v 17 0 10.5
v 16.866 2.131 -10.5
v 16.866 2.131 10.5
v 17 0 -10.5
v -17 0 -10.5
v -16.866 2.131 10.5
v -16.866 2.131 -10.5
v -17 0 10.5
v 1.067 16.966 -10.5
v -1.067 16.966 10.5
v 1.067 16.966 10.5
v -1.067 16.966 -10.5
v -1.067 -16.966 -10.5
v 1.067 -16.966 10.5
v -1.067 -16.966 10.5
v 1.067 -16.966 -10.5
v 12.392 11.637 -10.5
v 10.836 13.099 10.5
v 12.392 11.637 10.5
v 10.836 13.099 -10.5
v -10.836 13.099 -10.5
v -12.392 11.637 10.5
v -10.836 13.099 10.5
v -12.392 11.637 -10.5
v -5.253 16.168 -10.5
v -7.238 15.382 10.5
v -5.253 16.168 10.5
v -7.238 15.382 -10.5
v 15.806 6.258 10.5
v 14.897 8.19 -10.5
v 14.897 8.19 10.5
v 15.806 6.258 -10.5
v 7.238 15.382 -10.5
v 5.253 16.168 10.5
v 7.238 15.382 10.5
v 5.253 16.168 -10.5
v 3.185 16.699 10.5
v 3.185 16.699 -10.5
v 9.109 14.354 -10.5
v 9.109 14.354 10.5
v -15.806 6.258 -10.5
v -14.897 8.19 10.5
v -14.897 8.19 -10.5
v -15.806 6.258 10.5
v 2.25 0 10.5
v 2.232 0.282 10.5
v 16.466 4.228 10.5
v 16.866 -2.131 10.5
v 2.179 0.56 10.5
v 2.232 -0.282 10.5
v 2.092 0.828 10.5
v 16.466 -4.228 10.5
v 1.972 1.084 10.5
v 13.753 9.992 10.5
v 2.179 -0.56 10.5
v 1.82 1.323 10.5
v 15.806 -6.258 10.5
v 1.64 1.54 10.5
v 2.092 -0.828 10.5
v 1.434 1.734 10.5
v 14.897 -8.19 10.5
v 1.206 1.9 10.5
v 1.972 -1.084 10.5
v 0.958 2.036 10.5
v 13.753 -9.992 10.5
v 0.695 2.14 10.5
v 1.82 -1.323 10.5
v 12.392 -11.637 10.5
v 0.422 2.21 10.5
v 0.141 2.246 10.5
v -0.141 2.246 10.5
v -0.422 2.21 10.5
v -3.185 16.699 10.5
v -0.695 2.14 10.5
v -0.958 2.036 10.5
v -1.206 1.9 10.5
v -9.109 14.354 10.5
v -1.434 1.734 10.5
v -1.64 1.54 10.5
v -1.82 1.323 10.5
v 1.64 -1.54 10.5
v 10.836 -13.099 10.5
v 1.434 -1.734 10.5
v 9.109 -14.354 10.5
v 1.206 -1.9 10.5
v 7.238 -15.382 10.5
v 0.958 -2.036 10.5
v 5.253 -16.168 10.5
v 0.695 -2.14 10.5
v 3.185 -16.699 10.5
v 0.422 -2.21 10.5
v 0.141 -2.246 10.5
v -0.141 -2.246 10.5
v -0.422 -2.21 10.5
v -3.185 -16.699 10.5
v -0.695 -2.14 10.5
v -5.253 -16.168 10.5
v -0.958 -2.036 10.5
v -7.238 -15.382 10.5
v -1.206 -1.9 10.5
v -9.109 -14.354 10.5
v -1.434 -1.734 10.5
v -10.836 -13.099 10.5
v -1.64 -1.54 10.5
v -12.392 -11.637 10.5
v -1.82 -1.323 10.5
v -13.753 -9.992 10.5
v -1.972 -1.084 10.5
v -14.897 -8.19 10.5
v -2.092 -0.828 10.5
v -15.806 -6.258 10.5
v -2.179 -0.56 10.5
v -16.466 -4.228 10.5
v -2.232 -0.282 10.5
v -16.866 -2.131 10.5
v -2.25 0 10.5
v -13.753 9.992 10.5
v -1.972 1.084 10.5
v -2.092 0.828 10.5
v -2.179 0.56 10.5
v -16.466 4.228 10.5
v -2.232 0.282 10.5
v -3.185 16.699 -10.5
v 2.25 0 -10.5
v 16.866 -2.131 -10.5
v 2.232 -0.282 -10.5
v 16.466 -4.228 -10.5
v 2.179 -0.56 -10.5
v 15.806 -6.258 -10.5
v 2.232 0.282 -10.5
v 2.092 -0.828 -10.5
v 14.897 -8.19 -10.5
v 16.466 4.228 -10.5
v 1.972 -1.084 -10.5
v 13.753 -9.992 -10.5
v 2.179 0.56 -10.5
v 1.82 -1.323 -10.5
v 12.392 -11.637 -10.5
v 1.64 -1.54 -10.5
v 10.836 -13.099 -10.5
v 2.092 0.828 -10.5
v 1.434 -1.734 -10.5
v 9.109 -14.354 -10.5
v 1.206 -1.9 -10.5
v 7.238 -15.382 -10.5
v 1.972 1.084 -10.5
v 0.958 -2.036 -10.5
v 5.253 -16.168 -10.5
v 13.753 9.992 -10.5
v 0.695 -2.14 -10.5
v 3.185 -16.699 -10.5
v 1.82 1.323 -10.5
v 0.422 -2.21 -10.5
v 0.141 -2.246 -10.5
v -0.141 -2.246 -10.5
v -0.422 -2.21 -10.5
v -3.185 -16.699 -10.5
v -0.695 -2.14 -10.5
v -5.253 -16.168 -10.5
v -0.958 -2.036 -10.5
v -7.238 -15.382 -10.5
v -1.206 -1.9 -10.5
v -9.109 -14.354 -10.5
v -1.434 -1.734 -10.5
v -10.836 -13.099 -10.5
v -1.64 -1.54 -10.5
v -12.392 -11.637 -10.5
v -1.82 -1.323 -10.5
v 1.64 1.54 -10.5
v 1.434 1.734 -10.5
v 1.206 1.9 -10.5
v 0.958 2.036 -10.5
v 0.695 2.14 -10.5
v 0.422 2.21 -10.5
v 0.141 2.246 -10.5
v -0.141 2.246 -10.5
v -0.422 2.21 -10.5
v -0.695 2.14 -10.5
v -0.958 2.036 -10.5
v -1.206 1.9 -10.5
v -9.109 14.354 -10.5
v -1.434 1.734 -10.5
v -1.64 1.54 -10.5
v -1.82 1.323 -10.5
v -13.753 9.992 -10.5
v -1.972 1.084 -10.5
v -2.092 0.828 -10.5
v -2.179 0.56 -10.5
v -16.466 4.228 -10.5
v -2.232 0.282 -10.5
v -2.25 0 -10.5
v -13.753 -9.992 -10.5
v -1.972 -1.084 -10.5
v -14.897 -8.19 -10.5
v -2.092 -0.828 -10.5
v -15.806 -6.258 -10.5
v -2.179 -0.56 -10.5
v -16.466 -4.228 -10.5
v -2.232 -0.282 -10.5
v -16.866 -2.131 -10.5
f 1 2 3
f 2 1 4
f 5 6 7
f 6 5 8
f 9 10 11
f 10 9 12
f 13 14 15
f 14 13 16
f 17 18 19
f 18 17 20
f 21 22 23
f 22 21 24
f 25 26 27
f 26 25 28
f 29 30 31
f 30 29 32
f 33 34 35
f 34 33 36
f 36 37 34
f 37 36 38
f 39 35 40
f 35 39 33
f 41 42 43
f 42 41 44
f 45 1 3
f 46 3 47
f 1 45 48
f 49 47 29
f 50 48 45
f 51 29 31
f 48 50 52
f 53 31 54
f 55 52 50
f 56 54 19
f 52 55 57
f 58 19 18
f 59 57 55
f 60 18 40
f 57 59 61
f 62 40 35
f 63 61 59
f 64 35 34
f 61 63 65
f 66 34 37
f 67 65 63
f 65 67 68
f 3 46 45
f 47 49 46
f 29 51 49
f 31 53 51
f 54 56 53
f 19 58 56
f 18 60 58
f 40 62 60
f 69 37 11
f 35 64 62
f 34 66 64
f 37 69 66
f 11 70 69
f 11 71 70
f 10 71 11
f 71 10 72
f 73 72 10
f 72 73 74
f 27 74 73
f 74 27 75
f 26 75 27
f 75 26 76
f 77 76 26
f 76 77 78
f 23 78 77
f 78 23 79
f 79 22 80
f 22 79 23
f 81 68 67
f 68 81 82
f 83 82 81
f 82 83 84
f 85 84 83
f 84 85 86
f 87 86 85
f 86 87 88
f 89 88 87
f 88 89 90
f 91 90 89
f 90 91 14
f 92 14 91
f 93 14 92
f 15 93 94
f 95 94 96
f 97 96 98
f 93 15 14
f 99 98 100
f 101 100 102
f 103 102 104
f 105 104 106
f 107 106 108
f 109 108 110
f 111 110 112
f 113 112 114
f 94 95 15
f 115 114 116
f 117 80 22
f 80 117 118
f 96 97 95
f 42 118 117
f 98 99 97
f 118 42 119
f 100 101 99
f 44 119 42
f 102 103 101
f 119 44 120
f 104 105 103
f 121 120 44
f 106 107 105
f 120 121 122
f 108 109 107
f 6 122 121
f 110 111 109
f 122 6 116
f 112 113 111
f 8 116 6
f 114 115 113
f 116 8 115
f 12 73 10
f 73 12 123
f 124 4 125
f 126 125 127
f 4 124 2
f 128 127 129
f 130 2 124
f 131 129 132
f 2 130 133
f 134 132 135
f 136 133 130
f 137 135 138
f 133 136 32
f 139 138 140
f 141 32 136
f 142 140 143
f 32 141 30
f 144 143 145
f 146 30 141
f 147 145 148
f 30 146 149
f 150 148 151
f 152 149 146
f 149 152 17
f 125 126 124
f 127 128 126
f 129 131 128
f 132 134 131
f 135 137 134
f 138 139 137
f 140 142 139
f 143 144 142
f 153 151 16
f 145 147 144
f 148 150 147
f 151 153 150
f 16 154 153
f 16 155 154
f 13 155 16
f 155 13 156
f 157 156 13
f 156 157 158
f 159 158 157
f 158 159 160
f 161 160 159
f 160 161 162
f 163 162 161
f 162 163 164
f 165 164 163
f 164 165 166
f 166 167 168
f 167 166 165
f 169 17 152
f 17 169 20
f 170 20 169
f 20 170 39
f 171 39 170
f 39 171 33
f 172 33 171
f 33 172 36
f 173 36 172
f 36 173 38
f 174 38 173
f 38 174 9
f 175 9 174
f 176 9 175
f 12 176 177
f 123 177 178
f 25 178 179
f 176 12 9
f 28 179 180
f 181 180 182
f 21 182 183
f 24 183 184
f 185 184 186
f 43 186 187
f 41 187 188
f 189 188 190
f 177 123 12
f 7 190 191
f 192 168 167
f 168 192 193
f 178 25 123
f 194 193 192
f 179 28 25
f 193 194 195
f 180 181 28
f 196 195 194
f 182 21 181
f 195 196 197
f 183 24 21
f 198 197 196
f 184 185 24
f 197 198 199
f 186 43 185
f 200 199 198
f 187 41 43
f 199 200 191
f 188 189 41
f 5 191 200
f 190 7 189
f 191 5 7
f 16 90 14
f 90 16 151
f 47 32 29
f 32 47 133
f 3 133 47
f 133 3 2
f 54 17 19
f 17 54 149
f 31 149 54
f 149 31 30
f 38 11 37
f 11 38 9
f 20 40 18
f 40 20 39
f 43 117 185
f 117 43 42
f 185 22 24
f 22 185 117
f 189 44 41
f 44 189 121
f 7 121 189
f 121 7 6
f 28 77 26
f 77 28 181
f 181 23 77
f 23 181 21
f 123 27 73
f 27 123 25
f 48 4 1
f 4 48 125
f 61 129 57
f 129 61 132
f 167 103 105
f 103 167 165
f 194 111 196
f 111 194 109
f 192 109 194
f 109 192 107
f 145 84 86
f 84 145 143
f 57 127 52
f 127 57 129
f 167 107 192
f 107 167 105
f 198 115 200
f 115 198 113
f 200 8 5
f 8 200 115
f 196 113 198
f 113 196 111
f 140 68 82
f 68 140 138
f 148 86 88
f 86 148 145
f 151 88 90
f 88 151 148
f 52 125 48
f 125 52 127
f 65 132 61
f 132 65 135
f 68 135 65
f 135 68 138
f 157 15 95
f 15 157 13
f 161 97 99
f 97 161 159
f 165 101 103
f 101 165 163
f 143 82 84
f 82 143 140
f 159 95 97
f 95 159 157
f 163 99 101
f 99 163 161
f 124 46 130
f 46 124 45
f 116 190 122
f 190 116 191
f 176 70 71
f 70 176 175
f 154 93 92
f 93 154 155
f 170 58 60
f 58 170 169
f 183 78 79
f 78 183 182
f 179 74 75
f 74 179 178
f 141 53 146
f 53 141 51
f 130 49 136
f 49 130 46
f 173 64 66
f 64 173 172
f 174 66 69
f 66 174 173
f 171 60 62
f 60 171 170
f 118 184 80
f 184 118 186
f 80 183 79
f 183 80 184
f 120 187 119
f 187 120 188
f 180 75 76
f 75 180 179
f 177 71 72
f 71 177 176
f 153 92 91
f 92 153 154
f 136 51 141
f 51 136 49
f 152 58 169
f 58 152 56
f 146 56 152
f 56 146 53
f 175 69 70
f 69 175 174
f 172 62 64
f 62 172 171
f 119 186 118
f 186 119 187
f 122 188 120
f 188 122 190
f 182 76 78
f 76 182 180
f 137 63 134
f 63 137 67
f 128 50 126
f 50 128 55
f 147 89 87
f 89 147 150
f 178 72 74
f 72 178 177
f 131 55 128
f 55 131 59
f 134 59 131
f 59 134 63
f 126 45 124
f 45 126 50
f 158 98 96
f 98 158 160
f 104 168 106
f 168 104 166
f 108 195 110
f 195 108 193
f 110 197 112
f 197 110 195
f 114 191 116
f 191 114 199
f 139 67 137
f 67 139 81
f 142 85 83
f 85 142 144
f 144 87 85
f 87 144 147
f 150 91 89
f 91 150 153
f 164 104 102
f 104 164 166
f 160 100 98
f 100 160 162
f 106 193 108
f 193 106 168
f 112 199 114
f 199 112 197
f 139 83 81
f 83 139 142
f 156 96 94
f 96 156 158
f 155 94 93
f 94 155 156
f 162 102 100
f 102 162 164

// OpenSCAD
$fn = 50;


difference() {
	union() {
		translate(v = [0, 0, -10.5000000000]) {
			cylinder(h = 21, r = 17.0000000000);
		}
	}
	union() {
		translate(v = [0, 0, -100.0000000000]) {
			cylinder(h = 200, r = 2.2500000000);
		}
	}
}
